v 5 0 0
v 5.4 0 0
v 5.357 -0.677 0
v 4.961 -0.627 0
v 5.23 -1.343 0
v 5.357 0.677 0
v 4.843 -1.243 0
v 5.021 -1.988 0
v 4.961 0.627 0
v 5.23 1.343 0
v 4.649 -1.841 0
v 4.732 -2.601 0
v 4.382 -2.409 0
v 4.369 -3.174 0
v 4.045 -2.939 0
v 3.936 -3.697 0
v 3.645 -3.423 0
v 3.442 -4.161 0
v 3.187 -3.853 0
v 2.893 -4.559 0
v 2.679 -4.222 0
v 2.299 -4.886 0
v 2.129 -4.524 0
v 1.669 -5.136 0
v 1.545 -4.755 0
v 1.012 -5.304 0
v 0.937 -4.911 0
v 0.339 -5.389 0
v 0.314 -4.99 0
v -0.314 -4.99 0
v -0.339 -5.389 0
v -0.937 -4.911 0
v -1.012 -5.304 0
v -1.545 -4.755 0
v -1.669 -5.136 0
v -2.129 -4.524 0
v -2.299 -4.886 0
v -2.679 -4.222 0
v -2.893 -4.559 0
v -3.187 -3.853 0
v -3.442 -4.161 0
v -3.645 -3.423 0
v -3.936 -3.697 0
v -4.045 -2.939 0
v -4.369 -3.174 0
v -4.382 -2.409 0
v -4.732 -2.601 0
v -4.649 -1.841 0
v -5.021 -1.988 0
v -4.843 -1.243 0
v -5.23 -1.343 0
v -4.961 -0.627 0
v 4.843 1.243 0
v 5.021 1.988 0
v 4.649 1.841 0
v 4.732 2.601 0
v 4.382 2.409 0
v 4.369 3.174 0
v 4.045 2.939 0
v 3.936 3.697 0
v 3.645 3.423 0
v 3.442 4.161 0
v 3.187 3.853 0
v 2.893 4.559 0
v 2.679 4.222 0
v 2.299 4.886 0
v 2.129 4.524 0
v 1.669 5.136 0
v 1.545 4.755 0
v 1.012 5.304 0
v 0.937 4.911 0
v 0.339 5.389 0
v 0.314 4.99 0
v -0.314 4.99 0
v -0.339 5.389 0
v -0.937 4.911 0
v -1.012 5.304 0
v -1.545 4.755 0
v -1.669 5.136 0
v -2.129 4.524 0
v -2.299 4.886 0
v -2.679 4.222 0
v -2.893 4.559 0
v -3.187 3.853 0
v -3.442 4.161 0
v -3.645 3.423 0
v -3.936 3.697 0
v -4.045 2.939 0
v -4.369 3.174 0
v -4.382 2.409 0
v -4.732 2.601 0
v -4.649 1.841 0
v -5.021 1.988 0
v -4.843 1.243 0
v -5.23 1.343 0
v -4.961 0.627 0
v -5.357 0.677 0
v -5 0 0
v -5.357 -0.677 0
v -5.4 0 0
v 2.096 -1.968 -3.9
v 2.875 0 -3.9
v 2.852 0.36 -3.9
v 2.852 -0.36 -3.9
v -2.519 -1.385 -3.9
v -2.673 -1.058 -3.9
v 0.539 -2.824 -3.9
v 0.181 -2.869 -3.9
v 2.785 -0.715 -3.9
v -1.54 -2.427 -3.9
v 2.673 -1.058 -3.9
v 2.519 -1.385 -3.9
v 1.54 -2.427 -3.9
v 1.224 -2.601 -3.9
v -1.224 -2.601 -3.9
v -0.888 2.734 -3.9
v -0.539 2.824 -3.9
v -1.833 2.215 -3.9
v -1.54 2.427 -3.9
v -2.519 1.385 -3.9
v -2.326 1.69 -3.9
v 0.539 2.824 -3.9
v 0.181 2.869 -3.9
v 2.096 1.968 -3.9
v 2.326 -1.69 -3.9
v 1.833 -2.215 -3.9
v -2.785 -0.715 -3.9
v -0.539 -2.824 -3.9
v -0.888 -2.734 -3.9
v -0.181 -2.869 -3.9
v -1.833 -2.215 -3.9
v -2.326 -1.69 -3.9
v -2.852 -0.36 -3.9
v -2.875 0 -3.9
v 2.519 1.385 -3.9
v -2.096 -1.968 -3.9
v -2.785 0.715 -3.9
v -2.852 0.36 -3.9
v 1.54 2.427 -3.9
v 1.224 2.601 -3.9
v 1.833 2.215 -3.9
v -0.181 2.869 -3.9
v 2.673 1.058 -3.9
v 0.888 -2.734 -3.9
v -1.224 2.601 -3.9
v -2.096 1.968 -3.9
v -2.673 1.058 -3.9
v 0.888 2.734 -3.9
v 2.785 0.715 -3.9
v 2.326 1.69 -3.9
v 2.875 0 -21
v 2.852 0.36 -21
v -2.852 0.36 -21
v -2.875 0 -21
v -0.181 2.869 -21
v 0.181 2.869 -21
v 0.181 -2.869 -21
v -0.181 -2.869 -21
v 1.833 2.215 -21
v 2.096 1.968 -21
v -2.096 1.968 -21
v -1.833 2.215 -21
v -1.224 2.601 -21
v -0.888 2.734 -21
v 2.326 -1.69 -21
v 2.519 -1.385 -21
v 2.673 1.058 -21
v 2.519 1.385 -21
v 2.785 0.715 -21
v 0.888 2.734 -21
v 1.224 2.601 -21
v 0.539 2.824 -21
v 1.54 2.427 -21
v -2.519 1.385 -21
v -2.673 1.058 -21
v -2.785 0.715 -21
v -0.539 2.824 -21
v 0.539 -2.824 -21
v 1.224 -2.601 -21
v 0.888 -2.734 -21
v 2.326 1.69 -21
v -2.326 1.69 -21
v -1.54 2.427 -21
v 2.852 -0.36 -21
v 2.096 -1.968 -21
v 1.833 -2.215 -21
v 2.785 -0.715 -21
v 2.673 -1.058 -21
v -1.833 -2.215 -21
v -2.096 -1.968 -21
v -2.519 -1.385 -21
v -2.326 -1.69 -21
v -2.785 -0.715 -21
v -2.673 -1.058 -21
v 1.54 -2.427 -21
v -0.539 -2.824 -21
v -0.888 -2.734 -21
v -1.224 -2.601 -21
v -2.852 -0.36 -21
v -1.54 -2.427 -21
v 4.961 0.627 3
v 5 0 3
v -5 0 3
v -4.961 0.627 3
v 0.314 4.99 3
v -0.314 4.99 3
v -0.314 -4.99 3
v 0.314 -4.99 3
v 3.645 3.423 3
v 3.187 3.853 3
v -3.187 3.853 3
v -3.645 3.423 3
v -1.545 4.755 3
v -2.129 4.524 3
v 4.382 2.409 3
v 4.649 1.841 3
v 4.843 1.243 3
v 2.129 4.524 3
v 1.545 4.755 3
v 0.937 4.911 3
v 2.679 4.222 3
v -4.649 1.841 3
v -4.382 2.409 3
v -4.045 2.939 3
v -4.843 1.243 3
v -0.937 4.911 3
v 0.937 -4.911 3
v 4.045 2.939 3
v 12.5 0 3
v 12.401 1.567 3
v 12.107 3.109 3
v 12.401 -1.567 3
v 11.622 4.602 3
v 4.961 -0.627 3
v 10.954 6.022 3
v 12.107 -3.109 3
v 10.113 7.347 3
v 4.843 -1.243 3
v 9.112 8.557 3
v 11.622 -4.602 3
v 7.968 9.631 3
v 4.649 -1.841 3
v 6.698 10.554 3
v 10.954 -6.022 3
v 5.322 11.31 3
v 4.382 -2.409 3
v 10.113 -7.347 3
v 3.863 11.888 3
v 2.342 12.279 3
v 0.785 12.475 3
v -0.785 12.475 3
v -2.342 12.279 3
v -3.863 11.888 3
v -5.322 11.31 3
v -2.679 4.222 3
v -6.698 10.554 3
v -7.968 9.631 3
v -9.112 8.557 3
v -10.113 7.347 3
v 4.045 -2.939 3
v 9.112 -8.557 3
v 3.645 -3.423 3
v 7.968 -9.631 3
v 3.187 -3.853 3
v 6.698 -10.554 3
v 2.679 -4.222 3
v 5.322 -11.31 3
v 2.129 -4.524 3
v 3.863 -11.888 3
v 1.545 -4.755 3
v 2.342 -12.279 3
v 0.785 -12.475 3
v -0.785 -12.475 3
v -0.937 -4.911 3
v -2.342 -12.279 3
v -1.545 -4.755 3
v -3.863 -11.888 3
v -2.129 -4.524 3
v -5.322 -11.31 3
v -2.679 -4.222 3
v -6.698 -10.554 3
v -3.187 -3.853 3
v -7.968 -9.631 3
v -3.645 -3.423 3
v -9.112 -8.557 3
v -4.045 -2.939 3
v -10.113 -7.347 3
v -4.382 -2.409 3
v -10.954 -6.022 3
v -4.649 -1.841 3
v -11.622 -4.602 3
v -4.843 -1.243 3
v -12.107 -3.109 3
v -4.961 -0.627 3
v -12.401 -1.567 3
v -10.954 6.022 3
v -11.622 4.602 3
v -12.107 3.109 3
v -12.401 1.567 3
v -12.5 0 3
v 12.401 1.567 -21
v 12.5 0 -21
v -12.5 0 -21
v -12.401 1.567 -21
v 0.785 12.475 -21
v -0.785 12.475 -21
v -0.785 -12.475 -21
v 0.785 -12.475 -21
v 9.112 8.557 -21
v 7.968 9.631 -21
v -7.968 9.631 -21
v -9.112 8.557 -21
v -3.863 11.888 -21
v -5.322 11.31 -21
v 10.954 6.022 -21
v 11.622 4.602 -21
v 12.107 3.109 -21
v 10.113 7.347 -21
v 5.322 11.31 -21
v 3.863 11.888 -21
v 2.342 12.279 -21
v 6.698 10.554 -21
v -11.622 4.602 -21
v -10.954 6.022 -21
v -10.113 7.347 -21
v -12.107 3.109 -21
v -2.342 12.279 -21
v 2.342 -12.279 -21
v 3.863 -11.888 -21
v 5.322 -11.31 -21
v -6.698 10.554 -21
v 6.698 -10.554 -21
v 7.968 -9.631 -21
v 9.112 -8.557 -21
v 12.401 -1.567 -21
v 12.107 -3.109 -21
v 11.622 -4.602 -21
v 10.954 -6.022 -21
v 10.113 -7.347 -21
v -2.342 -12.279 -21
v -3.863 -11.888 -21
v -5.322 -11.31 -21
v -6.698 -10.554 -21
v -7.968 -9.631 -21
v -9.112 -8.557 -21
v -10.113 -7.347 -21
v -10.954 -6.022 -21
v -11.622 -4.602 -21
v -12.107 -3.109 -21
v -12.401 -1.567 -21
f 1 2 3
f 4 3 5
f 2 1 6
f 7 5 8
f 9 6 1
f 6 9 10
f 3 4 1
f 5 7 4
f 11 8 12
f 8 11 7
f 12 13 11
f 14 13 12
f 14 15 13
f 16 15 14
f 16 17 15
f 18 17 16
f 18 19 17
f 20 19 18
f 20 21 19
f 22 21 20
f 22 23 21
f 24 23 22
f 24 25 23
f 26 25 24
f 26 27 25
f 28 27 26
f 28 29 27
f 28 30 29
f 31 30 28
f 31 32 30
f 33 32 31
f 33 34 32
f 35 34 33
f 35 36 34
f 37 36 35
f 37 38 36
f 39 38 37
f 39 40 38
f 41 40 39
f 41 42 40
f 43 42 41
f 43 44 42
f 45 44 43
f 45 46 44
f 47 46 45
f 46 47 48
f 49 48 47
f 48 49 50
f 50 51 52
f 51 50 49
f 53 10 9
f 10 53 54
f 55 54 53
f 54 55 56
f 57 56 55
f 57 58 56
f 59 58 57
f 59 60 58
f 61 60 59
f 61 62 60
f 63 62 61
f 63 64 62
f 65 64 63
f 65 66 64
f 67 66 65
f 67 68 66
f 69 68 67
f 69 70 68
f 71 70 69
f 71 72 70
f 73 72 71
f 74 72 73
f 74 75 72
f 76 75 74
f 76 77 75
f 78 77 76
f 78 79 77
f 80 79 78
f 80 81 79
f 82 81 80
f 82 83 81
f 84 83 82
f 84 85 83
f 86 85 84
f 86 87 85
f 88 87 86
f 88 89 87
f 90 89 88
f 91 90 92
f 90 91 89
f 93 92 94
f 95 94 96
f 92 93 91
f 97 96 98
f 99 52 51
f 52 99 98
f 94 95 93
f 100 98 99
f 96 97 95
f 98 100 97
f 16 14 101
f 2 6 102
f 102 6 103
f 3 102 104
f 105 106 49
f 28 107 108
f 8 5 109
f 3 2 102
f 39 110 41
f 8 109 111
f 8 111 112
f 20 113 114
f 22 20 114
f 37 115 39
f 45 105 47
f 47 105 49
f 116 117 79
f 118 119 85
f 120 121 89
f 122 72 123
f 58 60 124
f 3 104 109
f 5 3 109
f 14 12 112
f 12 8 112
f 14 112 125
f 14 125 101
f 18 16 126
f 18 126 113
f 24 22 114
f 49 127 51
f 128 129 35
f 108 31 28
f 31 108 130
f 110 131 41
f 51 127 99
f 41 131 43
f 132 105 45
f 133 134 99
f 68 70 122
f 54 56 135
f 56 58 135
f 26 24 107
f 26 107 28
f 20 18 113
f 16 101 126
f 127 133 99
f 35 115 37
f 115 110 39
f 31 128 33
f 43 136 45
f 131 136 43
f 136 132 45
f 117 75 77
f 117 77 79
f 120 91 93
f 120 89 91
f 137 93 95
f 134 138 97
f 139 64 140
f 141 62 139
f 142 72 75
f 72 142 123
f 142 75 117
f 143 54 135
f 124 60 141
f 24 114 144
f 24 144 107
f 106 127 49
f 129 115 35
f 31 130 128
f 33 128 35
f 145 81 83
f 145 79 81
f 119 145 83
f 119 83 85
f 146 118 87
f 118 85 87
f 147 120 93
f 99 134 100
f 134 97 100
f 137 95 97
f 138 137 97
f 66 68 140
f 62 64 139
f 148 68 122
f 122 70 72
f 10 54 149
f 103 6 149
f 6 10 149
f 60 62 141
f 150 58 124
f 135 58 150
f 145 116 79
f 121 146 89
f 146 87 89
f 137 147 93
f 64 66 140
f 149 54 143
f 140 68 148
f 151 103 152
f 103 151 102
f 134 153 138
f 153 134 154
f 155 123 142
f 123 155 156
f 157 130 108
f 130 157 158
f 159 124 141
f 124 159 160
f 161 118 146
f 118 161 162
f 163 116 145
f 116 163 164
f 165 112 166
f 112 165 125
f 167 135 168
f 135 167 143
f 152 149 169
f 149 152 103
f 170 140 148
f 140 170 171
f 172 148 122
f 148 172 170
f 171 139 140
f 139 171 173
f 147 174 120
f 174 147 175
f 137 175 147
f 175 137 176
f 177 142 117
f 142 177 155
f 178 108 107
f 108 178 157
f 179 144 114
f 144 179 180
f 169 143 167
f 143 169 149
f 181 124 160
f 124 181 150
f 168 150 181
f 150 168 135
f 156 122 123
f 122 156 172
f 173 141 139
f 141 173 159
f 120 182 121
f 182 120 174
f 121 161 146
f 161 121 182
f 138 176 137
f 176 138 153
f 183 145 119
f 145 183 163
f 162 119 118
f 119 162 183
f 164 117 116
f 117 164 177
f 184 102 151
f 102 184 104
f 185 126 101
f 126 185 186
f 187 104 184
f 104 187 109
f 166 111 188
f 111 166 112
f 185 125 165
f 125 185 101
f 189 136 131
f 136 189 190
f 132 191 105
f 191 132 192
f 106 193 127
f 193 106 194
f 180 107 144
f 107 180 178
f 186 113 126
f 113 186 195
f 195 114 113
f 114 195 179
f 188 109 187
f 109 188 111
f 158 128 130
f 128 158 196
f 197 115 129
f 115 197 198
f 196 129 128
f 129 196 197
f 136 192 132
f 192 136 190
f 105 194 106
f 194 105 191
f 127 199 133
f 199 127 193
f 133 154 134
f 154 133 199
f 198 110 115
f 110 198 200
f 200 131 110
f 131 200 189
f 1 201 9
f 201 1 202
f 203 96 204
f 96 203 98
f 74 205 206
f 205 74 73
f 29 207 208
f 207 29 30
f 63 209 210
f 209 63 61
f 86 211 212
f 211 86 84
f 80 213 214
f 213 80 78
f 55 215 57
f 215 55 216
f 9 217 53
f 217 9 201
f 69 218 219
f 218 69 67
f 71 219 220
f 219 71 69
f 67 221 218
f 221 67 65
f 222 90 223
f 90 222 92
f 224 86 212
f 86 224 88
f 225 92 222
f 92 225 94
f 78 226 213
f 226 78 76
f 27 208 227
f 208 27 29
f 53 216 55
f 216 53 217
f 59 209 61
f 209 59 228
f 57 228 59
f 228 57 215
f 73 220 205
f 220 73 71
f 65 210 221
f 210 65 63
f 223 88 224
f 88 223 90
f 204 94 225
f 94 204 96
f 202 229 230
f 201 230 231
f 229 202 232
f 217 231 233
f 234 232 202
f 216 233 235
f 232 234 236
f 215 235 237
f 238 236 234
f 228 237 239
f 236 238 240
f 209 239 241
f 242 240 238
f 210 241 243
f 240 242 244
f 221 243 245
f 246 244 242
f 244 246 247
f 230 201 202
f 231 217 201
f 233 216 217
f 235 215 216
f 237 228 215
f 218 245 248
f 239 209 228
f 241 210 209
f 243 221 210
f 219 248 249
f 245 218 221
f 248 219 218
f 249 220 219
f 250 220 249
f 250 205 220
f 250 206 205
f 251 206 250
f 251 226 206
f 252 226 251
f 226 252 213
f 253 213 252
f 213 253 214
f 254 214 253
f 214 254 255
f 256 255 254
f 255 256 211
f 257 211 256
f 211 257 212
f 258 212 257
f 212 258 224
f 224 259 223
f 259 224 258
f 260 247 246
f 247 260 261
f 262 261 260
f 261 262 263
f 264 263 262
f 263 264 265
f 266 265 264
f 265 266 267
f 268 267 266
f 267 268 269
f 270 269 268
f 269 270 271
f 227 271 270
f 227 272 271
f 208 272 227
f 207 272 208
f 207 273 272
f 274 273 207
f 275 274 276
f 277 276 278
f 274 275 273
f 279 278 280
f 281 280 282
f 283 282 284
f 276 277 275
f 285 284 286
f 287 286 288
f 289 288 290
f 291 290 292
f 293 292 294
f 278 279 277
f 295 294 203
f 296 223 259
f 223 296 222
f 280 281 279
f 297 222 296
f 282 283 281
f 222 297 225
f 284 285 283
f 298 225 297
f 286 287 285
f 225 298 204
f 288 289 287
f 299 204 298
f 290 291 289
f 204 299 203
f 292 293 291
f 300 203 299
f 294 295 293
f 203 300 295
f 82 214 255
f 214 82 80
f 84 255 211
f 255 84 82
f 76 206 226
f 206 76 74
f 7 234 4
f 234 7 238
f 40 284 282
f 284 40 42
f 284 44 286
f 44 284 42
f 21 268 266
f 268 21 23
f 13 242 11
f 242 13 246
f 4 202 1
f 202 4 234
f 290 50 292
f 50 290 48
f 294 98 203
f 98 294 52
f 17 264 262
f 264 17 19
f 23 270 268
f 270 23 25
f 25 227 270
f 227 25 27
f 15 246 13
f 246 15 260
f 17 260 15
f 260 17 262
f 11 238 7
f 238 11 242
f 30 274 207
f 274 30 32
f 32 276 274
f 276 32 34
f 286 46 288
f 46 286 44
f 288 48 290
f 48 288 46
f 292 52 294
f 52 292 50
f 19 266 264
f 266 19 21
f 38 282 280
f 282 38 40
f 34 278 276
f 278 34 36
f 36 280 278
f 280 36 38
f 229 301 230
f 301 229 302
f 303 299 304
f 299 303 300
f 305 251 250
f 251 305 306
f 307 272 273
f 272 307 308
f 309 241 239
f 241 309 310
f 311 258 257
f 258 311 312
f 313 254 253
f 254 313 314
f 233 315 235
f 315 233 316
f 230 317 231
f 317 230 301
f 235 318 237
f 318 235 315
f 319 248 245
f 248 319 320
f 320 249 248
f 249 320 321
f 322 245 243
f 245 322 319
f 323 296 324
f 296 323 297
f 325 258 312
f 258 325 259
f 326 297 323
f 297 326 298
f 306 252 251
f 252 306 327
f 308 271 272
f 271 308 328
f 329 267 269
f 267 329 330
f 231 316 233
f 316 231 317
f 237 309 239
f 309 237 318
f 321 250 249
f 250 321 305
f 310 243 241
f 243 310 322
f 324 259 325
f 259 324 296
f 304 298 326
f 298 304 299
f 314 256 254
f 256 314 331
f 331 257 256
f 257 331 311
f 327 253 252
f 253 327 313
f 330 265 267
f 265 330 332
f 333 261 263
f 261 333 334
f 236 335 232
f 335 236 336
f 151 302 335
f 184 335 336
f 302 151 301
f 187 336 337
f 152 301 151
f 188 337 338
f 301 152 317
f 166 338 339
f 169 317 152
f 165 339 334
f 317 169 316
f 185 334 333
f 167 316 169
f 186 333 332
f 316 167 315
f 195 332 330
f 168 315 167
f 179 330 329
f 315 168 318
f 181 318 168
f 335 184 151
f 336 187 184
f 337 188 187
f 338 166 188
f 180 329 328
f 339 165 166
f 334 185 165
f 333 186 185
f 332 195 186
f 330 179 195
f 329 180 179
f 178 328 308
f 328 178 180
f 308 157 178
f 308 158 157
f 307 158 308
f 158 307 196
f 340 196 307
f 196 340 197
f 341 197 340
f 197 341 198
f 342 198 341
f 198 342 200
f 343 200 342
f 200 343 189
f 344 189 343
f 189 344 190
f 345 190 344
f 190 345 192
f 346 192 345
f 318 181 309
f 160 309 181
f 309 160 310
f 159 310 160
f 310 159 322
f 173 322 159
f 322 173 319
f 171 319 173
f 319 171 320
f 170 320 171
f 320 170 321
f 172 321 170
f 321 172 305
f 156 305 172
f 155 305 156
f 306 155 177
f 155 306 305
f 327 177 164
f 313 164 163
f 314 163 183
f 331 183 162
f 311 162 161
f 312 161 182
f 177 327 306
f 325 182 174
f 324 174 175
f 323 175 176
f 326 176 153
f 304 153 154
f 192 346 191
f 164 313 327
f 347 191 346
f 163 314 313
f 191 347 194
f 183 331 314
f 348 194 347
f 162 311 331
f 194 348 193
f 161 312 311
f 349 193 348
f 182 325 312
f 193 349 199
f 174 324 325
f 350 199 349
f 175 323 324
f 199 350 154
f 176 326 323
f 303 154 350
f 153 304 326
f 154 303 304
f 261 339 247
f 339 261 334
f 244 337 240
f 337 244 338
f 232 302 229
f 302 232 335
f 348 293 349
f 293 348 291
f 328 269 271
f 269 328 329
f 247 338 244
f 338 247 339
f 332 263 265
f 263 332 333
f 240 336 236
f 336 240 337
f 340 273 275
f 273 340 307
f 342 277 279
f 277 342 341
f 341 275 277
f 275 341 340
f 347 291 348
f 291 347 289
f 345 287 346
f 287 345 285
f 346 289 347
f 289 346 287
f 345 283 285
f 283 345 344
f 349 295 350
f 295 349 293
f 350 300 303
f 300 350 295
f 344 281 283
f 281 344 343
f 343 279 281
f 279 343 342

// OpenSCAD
$fn = 50;

difference() {
	union() {
		translate(v = [0, 0, -21.0]) {
			cylinder(h = 24, r = 12.5);
		}
	}
	union() {
		translate(v = [0, 0, 0]) {
			rotate(a = [0, 0, 0]) {
				difference() {
					union() {
						translate(v = [0, 0, -24.0]) {
							cylinder(h = 24, r = 2.6);
						}
						translate(v = [0, 0, -3.9]) {
							cylinder(h = 3.9, r1 = 2.875, r2 = 5.4);
						}
						translate(v = [0, 0, -24.0]) {
							cylinder(h = 24, r = 2.875);
						}
						translate(v = [0, 0, -24.0]) {
							cylinder(h = 24, r = 2.6);
						}
					}
					union();
				}
			}
		}
		#cylinder(h = 3, r = 5.0);
	}
}
